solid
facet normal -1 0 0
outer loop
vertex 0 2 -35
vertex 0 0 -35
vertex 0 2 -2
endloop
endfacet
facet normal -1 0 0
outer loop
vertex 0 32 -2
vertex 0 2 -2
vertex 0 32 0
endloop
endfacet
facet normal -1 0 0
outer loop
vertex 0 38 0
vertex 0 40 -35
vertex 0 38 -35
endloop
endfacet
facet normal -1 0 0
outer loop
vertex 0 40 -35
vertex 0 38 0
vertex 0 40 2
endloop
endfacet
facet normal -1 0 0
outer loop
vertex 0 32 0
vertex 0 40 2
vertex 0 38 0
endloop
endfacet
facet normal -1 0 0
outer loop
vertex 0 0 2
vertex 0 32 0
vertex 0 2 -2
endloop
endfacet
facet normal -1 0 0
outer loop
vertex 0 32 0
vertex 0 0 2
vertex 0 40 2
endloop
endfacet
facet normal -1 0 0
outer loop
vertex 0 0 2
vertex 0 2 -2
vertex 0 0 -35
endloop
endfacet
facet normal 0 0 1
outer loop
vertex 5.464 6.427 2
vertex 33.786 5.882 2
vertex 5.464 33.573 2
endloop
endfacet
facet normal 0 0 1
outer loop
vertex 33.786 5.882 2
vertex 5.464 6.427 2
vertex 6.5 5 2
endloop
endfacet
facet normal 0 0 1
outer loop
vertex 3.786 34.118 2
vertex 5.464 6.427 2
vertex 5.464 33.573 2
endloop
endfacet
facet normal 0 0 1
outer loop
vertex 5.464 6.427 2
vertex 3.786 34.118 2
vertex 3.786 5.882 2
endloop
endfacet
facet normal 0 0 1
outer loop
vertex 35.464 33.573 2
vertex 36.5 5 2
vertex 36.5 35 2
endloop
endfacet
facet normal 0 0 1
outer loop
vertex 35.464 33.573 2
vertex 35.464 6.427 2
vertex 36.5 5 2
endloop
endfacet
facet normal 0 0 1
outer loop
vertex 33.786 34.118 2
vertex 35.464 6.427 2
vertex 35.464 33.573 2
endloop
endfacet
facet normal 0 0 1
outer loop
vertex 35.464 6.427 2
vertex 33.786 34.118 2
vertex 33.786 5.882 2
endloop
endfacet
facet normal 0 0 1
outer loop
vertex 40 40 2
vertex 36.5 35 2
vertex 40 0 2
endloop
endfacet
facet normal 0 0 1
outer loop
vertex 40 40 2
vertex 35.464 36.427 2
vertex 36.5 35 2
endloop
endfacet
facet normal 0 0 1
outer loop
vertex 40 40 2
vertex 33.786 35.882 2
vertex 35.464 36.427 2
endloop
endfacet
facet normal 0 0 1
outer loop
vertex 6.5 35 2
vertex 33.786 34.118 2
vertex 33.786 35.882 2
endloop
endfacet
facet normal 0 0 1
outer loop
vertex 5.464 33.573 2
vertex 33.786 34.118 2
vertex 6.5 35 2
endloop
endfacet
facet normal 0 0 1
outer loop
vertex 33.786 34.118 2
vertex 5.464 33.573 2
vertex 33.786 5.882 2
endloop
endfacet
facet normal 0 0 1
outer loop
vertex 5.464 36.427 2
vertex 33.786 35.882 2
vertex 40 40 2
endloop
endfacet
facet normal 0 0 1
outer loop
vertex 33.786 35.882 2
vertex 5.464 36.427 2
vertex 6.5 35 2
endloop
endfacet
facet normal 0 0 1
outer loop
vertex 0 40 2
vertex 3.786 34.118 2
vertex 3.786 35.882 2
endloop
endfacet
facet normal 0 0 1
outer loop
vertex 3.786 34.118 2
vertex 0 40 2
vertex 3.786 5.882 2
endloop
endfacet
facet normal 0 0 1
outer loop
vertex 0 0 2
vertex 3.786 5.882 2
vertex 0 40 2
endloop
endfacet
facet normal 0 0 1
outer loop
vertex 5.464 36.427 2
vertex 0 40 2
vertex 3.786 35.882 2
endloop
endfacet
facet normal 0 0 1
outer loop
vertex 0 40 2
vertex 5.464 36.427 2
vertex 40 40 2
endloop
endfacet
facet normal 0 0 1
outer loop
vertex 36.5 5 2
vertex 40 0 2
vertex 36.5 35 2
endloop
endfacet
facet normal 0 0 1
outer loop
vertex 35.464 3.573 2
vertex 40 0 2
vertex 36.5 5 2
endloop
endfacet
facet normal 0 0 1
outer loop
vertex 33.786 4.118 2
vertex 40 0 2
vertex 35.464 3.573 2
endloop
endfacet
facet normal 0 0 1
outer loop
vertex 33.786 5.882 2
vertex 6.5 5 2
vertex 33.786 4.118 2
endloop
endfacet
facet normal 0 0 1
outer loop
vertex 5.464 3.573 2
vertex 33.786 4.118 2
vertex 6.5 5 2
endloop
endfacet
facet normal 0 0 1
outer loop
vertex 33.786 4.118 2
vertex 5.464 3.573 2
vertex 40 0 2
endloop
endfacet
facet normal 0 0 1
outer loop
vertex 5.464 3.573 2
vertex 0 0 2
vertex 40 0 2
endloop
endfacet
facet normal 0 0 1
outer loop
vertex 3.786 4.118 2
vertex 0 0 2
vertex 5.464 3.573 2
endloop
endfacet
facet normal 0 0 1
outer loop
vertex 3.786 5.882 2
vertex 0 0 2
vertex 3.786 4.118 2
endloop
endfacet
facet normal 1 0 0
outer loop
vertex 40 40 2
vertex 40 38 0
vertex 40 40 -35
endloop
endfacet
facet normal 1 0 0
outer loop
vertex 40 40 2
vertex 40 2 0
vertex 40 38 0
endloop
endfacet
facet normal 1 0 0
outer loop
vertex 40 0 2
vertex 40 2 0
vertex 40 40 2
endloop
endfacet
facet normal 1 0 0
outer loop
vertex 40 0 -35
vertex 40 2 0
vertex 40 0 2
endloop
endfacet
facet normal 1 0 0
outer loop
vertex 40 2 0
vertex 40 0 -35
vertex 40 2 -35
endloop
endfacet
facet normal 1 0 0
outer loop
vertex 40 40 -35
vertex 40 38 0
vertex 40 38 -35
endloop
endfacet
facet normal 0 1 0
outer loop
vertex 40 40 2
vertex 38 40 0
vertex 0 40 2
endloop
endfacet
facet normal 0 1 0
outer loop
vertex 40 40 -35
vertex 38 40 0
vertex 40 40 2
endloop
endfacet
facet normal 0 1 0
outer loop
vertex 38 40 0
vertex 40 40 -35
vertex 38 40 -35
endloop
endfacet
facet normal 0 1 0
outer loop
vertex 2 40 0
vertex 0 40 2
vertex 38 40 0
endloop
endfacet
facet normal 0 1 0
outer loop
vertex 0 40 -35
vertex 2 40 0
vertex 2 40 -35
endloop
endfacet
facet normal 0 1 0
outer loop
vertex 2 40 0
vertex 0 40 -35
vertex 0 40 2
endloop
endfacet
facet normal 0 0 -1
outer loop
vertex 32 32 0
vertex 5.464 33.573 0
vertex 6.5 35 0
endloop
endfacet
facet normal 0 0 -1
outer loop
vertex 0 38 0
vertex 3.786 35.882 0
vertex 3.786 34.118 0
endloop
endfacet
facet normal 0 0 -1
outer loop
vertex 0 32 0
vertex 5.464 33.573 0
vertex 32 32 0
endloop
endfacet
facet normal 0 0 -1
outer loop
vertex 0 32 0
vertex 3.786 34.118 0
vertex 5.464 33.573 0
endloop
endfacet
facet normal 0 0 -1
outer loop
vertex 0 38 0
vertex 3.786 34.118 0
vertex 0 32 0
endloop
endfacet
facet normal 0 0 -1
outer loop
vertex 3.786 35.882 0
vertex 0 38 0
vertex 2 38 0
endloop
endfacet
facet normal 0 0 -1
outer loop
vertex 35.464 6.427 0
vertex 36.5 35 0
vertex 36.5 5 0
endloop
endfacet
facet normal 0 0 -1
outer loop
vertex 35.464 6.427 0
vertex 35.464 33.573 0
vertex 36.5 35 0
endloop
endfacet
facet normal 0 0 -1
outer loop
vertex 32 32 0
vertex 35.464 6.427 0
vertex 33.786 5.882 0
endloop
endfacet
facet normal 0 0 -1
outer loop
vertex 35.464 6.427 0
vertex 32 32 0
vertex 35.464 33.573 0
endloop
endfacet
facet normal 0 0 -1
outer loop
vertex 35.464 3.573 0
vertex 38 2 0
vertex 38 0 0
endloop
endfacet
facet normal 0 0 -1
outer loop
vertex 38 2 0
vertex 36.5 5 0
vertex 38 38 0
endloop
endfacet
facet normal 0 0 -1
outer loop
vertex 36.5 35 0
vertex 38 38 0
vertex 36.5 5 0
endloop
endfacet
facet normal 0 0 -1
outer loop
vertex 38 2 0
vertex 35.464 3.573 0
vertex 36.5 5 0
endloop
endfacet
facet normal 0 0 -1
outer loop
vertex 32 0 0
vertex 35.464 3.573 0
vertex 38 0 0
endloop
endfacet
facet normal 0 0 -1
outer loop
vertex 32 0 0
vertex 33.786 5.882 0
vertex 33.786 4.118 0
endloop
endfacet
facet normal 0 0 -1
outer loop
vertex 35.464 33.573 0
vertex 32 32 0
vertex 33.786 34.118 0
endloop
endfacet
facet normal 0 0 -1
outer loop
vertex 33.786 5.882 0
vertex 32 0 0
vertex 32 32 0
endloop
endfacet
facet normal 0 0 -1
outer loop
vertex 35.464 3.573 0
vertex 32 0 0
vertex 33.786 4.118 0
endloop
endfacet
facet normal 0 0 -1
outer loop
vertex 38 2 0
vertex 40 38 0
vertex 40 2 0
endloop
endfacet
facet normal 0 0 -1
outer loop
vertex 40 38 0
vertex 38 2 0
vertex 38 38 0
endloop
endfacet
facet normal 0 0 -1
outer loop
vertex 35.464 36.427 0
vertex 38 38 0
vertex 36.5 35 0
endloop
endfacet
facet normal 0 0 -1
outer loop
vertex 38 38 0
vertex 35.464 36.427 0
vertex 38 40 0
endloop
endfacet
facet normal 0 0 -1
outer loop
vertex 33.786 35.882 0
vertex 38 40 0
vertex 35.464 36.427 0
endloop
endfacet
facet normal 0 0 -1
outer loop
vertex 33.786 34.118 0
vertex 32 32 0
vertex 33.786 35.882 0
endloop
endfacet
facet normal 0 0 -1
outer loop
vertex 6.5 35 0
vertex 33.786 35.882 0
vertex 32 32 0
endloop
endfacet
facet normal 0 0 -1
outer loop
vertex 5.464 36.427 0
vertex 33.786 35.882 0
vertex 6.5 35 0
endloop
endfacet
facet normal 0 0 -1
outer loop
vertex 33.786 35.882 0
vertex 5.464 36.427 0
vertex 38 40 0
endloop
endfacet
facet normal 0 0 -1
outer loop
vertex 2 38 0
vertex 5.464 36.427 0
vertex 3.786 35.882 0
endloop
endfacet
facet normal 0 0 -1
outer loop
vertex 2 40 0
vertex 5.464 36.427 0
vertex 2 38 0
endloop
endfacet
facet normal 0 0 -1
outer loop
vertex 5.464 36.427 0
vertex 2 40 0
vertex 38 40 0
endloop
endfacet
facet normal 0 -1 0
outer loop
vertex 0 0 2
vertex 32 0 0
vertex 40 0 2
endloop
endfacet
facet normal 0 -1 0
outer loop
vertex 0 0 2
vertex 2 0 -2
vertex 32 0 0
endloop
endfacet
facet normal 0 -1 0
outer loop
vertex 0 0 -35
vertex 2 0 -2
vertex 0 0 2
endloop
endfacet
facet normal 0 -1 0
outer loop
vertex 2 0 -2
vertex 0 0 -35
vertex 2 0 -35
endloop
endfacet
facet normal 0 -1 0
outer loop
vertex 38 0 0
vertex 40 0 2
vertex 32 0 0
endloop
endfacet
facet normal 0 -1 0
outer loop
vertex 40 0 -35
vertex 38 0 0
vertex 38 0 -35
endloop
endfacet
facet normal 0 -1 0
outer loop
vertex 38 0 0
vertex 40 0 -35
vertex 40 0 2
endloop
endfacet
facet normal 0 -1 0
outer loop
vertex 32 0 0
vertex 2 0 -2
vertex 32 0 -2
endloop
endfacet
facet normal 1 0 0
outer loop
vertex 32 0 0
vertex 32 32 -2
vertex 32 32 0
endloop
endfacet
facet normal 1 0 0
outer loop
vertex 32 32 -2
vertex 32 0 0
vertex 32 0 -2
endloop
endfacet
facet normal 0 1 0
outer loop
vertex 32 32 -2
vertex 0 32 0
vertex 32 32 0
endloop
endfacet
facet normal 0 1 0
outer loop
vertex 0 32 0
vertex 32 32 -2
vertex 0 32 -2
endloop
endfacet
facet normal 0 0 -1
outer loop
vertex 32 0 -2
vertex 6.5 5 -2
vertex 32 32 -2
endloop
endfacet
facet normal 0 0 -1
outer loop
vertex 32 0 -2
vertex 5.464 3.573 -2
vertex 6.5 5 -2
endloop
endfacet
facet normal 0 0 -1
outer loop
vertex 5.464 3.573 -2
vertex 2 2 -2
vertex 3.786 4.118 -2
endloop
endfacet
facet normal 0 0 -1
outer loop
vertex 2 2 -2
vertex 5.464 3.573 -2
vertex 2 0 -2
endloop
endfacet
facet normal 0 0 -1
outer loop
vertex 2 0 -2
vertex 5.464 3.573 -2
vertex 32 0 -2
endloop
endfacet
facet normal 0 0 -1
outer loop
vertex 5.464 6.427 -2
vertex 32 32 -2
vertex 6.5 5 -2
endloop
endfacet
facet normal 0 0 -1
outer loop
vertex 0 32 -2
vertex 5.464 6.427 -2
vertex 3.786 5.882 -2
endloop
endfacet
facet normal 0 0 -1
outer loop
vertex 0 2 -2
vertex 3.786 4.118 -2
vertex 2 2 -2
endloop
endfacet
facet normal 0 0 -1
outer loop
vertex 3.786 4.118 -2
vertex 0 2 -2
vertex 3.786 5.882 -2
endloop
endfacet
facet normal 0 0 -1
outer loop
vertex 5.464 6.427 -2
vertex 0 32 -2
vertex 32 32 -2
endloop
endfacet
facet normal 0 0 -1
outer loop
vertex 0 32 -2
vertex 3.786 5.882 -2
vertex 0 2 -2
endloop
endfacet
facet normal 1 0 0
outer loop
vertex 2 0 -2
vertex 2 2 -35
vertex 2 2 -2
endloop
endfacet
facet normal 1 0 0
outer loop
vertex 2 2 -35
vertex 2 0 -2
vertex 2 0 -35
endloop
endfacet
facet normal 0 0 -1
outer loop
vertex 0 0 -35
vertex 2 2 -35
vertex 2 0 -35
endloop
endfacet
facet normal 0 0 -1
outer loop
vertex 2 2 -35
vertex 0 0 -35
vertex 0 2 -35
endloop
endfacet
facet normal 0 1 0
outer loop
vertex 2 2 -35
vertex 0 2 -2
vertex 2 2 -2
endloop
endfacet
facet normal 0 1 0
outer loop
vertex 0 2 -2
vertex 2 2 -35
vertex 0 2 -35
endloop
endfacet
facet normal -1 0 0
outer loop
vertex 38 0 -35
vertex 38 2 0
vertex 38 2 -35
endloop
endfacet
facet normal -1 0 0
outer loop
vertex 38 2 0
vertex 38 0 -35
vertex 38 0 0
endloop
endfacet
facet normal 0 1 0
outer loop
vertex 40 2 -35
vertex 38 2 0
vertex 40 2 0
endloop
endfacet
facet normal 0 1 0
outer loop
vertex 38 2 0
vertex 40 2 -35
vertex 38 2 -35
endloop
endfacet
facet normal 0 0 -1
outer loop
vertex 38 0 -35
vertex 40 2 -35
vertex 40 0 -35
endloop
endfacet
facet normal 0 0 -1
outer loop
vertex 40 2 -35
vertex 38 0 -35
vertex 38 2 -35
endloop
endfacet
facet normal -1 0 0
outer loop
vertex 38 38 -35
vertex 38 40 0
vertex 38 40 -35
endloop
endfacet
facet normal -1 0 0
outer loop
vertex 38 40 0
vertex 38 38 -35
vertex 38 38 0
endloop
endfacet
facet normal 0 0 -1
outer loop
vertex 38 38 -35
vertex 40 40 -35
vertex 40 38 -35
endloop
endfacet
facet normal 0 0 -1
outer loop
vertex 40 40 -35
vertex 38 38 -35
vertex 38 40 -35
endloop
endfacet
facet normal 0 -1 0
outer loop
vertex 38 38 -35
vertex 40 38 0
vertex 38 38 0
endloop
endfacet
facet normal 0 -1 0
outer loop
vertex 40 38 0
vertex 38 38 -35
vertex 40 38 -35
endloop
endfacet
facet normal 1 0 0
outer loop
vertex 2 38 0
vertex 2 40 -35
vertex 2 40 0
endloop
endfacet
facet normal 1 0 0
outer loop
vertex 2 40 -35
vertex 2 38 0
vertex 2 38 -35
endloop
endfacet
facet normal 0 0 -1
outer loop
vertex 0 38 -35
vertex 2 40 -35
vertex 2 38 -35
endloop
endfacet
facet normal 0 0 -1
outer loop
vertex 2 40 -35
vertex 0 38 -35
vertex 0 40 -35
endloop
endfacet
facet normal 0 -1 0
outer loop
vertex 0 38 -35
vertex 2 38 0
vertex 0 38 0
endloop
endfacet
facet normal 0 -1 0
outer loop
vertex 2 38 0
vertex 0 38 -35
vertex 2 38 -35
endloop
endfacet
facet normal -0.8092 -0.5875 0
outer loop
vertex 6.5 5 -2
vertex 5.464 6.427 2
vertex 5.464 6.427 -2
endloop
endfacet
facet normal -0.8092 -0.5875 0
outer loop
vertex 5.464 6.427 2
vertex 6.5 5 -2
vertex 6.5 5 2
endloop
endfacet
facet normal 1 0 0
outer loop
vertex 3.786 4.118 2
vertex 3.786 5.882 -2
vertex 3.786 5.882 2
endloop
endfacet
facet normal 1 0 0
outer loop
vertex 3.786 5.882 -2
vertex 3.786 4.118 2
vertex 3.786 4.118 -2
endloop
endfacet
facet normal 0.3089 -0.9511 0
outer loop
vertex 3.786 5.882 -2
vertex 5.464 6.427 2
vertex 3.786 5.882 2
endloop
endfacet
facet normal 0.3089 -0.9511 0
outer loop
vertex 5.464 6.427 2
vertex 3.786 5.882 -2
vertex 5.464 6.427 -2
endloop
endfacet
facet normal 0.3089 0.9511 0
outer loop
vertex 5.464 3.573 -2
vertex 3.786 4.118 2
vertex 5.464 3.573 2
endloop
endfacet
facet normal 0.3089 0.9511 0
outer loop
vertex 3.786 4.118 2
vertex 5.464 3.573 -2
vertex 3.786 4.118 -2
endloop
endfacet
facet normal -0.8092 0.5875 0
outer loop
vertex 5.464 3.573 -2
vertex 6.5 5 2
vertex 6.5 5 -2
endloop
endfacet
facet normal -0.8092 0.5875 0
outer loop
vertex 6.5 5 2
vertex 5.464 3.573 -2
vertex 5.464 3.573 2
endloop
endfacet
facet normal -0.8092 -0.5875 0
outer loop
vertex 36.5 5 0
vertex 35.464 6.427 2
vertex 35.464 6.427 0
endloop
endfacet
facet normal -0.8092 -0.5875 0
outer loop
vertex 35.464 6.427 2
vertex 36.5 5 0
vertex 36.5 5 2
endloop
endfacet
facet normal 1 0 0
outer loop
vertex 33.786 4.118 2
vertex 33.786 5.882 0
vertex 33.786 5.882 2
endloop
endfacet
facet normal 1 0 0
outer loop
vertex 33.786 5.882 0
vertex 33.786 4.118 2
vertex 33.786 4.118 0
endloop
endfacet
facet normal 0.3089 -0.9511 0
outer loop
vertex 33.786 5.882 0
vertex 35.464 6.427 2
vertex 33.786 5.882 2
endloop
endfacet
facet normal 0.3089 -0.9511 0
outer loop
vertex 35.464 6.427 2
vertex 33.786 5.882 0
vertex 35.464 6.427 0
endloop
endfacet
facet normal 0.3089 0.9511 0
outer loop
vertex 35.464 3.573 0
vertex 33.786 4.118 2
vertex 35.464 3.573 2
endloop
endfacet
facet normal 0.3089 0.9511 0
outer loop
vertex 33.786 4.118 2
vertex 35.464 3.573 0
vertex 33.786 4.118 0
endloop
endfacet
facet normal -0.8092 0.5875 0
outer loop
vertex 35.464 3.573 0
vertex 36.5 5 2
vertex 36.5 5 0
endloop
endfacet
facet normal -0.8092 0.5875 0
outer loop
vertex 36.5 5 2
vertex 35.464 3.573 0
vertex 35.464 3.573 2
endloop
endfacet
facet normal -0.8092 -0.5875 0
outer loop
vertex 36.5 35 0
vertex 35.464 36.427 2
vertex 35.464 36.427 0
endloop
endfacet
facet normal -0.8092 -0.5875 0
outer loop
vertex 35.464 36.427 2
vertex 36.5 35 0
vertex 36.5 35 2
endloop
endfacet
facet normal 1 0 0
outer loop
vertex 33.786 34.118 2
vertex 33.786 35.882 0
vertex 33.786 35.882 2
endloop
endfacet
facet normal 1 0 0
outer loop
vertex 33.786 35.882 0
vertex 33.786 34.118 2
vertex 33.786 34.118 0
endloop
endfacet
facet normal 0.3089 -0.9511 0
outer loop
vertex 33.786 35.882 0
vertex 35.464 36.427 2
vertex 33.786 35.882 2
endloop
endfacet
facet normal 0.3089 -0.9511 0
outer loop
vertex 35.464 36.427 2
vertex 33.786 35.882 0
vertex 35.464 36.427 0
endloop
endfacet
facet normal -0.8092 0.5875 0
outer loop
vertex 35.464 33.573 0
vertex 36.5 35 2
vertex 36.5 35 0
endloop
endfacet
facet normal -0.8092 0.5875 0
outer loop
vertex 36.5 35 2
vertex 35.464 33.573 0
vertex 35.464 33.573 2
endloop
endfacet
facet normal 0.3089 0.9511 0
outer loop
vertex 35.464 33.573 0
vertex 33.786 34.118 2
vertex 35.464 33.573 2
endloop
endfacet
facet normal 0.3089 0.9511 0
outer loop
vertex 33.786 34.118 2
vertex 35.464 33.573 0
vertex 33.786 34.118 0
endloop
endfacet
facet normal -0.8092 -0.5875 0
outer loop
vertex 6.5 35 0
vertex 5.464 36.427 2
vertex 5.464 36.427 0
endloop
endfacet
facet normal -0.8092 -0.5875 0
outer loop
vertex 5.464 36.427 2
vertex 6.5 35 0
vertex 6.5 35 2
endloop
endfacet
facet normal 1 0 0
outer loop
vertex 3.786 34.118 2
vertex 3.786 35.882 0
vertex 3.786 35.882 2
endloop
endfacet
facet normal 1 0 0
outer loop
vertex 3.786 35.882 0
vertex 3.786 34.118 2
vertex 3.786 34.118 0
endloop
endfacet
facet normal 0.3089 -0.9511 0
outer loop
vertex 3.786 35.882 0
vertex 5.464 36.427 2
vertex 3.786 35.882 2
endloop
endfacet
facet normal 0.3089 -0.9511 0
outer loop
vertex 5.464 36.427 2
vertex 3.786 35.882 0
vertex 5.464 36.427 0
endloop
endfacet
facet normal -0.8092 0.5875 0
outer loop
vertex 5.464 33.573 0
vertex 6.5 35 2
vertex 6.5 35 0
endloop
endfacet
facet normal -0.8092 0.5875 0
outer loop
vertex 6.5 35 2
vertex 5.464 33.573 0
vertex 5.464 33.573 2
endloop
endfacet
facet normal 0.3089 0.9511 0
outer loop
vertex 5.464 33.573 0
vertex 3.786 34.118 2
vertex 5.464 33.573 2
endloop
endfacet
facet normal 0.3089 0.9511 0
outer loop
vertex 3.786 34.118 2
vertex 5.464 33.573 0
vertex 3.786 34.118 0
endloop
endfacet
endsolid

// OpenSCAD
difference() {
    union() {
        cube([40,40,2]); // seat
        translate([0,0,-2])
            cube([32,32,2]); // seat outline
        translate([0,0,-35])
            cube([2,2,35]); // front left leg
        translate([38,0,-35])
            cube([2,2,35]); // front right leg
        translate([38,38,-35])
            cube([2,2,35]); // back right leg
        translate([0,38,-35])
            cube([2,2,35]); // back left leg
    }
    translate([5,5,0])
        cylinder(h=35, r=1.5, center=true); // front left leg
    translate([35,5,0])
        cylinder(h=35, r=1.5, center=true); // front right leg
    translate([35,35,0])
        cylinder(h=35, r=1.5, center=true); // back right leg
    translate([5,35,0])
        cylinder(h=35, r=1.5, center=true); // back left leg
    translate([20,35,5])
        rotate([90,0,0])
            cube([20,2,25]); // back rest
}
